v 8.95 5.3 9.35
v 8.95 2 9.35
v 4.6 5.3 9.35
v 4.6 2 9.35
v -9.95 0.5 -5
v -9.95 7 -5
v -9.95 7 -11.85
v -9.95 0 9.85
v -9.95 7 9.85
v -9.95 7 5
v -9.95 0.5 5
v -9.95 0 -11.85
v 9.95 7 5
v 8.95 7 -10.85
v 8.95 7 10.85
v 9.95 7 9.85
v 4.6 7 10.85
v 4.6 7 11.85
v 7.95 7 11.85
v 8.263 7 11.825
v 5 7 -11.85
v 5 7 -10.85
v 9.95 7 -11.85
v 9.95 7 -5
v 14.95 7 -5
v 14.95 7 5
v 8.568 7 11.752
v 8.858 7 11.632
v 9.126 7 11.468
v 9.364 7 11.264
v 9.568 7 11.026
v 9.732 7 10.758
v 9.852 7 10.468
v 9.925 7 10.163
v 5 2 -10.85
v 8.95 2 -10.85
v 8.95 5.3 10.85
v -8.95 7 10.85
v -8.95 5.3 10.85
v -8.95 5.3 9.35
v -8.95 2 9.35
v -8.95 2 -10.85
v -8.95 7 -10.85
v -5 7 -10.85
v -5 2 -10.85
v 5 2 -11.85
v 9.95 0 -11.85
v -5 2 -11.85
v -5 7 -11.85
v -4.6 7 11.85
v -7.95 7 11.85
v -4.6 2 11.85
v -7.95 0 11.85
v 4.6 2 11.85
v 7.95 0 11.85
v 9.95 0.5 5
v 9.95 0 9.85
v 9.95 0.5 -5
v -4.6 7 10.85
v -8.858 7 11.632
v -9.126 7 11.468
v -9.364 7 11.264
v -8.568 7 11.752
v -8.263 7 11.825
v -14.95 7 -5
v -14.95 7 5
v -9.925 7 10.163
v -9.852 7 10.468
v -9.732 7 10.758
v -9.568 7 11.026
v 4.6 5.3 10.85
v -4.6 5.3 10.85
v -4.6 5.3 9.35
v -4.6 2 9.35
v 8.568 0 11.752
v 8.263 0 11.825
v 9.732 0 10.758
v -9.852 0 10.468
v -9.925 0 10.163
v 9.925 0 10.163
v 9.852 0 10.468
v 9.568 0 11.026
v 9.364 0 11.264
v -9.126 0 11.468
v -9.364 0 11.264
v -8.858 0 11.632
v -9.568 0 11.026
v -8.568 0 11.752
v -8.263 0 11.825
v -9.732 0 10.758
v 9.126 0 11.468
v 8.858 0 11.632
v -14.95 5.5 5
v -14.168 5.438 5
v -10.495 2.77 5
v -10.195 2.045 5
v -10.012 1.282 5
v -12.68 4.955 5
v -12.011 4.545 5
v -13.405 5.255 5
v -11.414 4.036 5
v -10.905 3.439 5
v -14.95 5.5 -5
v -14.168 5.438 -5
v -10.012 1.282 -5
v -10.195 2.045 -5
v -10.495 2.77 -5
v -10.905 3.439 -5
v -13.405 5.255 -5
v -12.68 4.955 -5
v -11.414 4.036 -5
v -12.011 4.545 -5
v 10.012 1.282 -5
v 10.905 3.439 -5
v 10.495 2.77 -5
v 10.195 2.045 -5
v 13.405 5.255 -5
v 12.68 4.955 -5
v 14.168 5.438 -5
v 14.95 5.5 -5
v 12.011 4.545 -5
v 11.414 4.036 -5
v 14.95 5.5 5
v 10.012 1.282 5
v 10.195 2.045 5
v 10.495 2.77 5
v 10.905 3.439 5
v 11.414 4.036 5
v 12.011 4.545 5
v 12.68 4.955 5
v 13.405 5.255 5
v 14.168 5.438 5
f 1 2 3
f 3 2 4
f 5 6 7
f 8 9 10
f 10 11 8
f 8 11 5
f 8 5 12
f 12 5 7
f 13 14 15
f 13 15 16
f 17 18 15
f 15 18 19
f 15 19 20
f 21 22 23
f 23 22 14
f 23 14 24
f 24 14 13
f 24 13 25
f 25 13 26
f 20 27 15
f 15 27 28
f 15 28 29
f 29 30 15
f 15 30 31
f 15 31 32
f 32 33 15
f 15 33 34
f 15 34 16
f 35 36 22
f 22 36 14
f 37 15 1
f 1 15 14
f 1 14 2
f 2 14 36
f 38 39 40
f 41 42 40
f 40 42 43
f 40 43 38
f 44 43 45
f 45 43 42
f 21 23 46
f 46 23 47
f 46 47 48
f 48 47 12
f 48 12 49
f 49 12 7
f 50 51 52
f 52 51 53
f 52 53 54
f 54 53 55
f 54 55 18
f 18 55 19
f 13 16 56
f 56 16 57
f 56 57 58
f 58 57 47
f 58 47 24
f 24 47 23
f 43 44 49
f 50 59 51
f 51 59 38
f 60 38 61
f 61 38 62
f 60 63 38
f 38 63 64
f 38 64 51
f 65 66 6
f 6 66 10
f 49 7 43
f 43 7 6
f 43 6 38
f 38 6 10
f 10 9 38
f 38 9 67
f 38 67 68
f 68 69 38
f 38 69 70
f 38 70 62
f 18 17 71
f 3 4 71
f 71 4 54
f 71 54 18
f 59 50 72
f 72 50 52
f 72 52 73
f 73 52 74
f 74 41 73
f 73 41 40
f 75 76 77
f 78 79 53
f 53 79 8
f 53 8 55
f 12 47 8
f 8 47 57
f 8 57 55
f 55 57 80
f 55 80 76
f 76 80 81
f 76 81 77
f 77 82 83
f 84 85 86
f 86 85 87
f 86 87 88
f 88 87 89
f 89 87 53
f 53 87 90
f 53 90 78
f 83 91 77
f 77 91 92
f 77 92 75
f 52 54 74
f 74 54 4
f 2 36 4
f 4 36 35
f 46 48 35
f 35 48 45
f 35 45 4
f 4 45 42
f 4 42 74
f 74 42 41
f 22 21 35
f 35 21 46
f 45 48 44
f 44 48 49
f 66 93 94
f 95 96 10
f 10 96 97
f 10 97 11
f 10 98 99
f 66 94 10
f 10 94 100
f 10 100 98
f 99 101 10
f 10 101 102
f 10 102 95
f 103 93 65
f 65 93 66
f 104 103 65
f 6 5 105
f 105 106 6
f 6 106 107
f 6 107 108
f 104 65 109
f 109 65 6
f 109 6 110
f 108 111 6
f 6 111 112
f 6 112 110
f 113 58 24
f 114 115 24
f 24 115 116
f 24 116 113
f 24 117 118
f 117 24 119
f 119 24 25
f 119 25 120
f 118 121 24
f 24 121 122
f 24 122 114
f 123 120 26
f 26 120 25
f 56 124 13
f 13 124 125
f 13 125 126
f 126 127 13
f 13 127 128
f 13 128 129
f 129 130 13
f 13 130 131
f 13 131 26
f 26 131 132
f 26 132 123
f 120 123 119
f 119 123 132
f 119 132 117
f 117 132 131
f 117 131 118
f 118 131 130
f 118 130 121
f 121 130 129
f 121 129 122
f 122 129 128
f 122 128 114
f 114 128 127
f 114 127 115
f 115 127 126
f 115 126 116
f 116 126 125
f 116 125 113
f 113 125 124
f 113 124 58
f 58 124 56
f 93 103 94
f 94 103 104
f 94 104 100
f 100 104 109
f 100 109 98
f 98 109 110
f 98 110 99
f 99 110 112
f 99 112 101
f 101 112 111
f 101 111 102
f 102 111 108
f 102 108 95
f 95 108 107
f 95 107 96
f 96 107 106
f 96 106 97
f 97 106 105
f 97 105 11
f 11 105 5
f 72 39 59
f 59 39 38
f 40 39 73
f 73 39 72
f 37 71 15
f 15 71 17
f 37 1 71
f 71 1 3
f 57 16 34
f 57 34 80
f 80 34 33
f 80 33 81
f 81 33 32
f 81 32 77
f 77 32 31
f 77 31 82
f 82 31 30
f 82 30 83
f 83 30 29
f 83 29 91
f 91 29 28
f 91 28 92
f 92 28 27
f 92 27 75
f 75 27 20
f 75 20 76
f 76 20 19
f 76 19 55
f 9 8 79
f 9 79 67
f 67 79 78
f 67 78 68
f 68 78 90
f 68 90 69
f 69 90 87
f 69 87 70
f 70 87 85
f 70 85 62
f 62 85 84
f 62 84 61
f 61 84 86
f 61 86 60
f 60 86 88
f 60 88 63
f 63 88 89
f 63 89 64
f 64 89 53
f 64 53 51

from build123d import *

# Parameters (mm, degrees)
SKETCH1_W               = 17.9
SKETCH1_H               = 21.7
BOSS_EXTRUDE1_DEPTH     = 2
BOSS_EXTRUDE2_OUTLINE_W = 19.9
BOSS_EXTRUDE2_OUTLINE_H = 23.7
BOSS_EXTRUDE2_DEPTH     = 7
SKETCH3_W               = 10
SKETCH3_H               = 5
CUT_EXTRUDE1_DEPTH      = 1
SKETCH4_W               = 9.2
SKETCH4_H               = 5
CUT_EXTRUDE2_DEPTH      = 1
SKETCH7_W               = 5
SKETCH7_H               = 10
BOSS_EXTRUDE3_DEPTH     = 1.5
FILLET1_R               = 5
SKETCH8_W               = 4.35
SKETCH8_H               = 1.5
CUT_EXTRUDE4_DEPTH      = 1.7
FILLET3_R               = 2


# Read off the part's stored shape, not the designer's step: Boss-Extrude2
with BuildPart() as part:
    # Sketch1 → Boss-Extrude1 (new body)
    with BuildSketch(Plane(origin=(0, 0, 0), x_dir=(1, 0, 0), z_dir=(0, 1, 0))):
        Rectangle(SKETCH1_W, SKETCH1_H)
    extrude(amount=BOSS_EXTRUDE1_DEPTH)

    # Boss-Extrude2 outline → Boss-Extrude2 (add)
    with BuildSketch(Plane(origin=(0, 0, 0), x_dir=(1, 0, 0), z_dir=(0, 1, 0))):
        Rectangle(BOSS_EXTRUDE2_OUTLINE_W, BOSS_EXTRUDE2_OUTLINE_H)
        Polygon((4.6, -9.35), (4.6, -10.85), (-4.6, -10.85), (-4.6, -9.35), (-8.95, -9.35), (-8.95, 10.85), (8.95, 10.85), (8.95, -9.35), align=None, mode=Mode.SUBTRACT)
    extrude(amount=BOSS_EXTRUDE2_DEPTH)

    # Sketch3 → Cut-Extrude1 (cut)
    with BuildSketch(Plane.XY.offset(-10.85)):
        with Locations((0, 4.5)):
            Rectangle(SKETCH3_W, SKETCH3_H)
    extrude(amount=-CUT_EXTRUDE1_DEPTH, mode=Mode.SUBTRACT)

    # Sketch4 → Cut-Extrude2 (cut)
    with BuildSketch(Plane.XY.offset(11.85)):
        with Locations((0, 4.5)):
            Rectangle(SKETCH4_W, SKETCH4_H)
    extrude(amount=-CUT_EXTRUDE2_DEPTH, mode=Mode.SUBTRACT)

    # Sketch7 → Boss-Extrude3 (add)
    with BuildSketch(Plane(origin=(0, 7, 0), x_dir=(1, 0, 0), z_dir=(0, 1, 0))):
        with Locations((-12.45, 0)):
            Rectangle(SKETCH7_W, SKETCH7_H)
        with Locations((12.45, 0)):
            Rectangle(SKETCH7_W, SKETCH7_H)
    extrude(amount=-BOSS_EXTRUDE3_DEPTH)

    # Fillet1
    fillet1_edges = [part.edges().sort_by_distance(p)[0] for p in [
        (9.95, 5.5, 0),
        (-9.95, 5.5, 0),
    ]]
    fillet(fillet1_edges, radius=FILLET1_R - 0.0001)  # a hair under: the kernel refuses the full size

    # Sketch8 → Cut-Extrude4 (cut)
    with BuildSketch(Plane(origin=(0, 7, 0), x_dir=(1, 0, 0), z_dir=(0, 1, 0))):
        with Locations((-6.775, -10.1)):
            Rectangle(SKETCH8_W, SKETCH8_H)
        with Locations((6.775, -10.1)):
            Rectangle(SKETCH8_W, SKETCH8_H)
    extrude(amount=-CUT_EXTRUDE4_DEPTH, mode=Mode.SUBTRACT)

    # Fillet3
    fillet3_edges = [part.edges().sort_by_distance(p)[0] for p in [
        (-9.95, 3.5, 11.85),
        (9.95, 3.5, 11.85),
    ]]
    fillet(fillet3_edges, radius=FILLET3_R)


solid = part.part
